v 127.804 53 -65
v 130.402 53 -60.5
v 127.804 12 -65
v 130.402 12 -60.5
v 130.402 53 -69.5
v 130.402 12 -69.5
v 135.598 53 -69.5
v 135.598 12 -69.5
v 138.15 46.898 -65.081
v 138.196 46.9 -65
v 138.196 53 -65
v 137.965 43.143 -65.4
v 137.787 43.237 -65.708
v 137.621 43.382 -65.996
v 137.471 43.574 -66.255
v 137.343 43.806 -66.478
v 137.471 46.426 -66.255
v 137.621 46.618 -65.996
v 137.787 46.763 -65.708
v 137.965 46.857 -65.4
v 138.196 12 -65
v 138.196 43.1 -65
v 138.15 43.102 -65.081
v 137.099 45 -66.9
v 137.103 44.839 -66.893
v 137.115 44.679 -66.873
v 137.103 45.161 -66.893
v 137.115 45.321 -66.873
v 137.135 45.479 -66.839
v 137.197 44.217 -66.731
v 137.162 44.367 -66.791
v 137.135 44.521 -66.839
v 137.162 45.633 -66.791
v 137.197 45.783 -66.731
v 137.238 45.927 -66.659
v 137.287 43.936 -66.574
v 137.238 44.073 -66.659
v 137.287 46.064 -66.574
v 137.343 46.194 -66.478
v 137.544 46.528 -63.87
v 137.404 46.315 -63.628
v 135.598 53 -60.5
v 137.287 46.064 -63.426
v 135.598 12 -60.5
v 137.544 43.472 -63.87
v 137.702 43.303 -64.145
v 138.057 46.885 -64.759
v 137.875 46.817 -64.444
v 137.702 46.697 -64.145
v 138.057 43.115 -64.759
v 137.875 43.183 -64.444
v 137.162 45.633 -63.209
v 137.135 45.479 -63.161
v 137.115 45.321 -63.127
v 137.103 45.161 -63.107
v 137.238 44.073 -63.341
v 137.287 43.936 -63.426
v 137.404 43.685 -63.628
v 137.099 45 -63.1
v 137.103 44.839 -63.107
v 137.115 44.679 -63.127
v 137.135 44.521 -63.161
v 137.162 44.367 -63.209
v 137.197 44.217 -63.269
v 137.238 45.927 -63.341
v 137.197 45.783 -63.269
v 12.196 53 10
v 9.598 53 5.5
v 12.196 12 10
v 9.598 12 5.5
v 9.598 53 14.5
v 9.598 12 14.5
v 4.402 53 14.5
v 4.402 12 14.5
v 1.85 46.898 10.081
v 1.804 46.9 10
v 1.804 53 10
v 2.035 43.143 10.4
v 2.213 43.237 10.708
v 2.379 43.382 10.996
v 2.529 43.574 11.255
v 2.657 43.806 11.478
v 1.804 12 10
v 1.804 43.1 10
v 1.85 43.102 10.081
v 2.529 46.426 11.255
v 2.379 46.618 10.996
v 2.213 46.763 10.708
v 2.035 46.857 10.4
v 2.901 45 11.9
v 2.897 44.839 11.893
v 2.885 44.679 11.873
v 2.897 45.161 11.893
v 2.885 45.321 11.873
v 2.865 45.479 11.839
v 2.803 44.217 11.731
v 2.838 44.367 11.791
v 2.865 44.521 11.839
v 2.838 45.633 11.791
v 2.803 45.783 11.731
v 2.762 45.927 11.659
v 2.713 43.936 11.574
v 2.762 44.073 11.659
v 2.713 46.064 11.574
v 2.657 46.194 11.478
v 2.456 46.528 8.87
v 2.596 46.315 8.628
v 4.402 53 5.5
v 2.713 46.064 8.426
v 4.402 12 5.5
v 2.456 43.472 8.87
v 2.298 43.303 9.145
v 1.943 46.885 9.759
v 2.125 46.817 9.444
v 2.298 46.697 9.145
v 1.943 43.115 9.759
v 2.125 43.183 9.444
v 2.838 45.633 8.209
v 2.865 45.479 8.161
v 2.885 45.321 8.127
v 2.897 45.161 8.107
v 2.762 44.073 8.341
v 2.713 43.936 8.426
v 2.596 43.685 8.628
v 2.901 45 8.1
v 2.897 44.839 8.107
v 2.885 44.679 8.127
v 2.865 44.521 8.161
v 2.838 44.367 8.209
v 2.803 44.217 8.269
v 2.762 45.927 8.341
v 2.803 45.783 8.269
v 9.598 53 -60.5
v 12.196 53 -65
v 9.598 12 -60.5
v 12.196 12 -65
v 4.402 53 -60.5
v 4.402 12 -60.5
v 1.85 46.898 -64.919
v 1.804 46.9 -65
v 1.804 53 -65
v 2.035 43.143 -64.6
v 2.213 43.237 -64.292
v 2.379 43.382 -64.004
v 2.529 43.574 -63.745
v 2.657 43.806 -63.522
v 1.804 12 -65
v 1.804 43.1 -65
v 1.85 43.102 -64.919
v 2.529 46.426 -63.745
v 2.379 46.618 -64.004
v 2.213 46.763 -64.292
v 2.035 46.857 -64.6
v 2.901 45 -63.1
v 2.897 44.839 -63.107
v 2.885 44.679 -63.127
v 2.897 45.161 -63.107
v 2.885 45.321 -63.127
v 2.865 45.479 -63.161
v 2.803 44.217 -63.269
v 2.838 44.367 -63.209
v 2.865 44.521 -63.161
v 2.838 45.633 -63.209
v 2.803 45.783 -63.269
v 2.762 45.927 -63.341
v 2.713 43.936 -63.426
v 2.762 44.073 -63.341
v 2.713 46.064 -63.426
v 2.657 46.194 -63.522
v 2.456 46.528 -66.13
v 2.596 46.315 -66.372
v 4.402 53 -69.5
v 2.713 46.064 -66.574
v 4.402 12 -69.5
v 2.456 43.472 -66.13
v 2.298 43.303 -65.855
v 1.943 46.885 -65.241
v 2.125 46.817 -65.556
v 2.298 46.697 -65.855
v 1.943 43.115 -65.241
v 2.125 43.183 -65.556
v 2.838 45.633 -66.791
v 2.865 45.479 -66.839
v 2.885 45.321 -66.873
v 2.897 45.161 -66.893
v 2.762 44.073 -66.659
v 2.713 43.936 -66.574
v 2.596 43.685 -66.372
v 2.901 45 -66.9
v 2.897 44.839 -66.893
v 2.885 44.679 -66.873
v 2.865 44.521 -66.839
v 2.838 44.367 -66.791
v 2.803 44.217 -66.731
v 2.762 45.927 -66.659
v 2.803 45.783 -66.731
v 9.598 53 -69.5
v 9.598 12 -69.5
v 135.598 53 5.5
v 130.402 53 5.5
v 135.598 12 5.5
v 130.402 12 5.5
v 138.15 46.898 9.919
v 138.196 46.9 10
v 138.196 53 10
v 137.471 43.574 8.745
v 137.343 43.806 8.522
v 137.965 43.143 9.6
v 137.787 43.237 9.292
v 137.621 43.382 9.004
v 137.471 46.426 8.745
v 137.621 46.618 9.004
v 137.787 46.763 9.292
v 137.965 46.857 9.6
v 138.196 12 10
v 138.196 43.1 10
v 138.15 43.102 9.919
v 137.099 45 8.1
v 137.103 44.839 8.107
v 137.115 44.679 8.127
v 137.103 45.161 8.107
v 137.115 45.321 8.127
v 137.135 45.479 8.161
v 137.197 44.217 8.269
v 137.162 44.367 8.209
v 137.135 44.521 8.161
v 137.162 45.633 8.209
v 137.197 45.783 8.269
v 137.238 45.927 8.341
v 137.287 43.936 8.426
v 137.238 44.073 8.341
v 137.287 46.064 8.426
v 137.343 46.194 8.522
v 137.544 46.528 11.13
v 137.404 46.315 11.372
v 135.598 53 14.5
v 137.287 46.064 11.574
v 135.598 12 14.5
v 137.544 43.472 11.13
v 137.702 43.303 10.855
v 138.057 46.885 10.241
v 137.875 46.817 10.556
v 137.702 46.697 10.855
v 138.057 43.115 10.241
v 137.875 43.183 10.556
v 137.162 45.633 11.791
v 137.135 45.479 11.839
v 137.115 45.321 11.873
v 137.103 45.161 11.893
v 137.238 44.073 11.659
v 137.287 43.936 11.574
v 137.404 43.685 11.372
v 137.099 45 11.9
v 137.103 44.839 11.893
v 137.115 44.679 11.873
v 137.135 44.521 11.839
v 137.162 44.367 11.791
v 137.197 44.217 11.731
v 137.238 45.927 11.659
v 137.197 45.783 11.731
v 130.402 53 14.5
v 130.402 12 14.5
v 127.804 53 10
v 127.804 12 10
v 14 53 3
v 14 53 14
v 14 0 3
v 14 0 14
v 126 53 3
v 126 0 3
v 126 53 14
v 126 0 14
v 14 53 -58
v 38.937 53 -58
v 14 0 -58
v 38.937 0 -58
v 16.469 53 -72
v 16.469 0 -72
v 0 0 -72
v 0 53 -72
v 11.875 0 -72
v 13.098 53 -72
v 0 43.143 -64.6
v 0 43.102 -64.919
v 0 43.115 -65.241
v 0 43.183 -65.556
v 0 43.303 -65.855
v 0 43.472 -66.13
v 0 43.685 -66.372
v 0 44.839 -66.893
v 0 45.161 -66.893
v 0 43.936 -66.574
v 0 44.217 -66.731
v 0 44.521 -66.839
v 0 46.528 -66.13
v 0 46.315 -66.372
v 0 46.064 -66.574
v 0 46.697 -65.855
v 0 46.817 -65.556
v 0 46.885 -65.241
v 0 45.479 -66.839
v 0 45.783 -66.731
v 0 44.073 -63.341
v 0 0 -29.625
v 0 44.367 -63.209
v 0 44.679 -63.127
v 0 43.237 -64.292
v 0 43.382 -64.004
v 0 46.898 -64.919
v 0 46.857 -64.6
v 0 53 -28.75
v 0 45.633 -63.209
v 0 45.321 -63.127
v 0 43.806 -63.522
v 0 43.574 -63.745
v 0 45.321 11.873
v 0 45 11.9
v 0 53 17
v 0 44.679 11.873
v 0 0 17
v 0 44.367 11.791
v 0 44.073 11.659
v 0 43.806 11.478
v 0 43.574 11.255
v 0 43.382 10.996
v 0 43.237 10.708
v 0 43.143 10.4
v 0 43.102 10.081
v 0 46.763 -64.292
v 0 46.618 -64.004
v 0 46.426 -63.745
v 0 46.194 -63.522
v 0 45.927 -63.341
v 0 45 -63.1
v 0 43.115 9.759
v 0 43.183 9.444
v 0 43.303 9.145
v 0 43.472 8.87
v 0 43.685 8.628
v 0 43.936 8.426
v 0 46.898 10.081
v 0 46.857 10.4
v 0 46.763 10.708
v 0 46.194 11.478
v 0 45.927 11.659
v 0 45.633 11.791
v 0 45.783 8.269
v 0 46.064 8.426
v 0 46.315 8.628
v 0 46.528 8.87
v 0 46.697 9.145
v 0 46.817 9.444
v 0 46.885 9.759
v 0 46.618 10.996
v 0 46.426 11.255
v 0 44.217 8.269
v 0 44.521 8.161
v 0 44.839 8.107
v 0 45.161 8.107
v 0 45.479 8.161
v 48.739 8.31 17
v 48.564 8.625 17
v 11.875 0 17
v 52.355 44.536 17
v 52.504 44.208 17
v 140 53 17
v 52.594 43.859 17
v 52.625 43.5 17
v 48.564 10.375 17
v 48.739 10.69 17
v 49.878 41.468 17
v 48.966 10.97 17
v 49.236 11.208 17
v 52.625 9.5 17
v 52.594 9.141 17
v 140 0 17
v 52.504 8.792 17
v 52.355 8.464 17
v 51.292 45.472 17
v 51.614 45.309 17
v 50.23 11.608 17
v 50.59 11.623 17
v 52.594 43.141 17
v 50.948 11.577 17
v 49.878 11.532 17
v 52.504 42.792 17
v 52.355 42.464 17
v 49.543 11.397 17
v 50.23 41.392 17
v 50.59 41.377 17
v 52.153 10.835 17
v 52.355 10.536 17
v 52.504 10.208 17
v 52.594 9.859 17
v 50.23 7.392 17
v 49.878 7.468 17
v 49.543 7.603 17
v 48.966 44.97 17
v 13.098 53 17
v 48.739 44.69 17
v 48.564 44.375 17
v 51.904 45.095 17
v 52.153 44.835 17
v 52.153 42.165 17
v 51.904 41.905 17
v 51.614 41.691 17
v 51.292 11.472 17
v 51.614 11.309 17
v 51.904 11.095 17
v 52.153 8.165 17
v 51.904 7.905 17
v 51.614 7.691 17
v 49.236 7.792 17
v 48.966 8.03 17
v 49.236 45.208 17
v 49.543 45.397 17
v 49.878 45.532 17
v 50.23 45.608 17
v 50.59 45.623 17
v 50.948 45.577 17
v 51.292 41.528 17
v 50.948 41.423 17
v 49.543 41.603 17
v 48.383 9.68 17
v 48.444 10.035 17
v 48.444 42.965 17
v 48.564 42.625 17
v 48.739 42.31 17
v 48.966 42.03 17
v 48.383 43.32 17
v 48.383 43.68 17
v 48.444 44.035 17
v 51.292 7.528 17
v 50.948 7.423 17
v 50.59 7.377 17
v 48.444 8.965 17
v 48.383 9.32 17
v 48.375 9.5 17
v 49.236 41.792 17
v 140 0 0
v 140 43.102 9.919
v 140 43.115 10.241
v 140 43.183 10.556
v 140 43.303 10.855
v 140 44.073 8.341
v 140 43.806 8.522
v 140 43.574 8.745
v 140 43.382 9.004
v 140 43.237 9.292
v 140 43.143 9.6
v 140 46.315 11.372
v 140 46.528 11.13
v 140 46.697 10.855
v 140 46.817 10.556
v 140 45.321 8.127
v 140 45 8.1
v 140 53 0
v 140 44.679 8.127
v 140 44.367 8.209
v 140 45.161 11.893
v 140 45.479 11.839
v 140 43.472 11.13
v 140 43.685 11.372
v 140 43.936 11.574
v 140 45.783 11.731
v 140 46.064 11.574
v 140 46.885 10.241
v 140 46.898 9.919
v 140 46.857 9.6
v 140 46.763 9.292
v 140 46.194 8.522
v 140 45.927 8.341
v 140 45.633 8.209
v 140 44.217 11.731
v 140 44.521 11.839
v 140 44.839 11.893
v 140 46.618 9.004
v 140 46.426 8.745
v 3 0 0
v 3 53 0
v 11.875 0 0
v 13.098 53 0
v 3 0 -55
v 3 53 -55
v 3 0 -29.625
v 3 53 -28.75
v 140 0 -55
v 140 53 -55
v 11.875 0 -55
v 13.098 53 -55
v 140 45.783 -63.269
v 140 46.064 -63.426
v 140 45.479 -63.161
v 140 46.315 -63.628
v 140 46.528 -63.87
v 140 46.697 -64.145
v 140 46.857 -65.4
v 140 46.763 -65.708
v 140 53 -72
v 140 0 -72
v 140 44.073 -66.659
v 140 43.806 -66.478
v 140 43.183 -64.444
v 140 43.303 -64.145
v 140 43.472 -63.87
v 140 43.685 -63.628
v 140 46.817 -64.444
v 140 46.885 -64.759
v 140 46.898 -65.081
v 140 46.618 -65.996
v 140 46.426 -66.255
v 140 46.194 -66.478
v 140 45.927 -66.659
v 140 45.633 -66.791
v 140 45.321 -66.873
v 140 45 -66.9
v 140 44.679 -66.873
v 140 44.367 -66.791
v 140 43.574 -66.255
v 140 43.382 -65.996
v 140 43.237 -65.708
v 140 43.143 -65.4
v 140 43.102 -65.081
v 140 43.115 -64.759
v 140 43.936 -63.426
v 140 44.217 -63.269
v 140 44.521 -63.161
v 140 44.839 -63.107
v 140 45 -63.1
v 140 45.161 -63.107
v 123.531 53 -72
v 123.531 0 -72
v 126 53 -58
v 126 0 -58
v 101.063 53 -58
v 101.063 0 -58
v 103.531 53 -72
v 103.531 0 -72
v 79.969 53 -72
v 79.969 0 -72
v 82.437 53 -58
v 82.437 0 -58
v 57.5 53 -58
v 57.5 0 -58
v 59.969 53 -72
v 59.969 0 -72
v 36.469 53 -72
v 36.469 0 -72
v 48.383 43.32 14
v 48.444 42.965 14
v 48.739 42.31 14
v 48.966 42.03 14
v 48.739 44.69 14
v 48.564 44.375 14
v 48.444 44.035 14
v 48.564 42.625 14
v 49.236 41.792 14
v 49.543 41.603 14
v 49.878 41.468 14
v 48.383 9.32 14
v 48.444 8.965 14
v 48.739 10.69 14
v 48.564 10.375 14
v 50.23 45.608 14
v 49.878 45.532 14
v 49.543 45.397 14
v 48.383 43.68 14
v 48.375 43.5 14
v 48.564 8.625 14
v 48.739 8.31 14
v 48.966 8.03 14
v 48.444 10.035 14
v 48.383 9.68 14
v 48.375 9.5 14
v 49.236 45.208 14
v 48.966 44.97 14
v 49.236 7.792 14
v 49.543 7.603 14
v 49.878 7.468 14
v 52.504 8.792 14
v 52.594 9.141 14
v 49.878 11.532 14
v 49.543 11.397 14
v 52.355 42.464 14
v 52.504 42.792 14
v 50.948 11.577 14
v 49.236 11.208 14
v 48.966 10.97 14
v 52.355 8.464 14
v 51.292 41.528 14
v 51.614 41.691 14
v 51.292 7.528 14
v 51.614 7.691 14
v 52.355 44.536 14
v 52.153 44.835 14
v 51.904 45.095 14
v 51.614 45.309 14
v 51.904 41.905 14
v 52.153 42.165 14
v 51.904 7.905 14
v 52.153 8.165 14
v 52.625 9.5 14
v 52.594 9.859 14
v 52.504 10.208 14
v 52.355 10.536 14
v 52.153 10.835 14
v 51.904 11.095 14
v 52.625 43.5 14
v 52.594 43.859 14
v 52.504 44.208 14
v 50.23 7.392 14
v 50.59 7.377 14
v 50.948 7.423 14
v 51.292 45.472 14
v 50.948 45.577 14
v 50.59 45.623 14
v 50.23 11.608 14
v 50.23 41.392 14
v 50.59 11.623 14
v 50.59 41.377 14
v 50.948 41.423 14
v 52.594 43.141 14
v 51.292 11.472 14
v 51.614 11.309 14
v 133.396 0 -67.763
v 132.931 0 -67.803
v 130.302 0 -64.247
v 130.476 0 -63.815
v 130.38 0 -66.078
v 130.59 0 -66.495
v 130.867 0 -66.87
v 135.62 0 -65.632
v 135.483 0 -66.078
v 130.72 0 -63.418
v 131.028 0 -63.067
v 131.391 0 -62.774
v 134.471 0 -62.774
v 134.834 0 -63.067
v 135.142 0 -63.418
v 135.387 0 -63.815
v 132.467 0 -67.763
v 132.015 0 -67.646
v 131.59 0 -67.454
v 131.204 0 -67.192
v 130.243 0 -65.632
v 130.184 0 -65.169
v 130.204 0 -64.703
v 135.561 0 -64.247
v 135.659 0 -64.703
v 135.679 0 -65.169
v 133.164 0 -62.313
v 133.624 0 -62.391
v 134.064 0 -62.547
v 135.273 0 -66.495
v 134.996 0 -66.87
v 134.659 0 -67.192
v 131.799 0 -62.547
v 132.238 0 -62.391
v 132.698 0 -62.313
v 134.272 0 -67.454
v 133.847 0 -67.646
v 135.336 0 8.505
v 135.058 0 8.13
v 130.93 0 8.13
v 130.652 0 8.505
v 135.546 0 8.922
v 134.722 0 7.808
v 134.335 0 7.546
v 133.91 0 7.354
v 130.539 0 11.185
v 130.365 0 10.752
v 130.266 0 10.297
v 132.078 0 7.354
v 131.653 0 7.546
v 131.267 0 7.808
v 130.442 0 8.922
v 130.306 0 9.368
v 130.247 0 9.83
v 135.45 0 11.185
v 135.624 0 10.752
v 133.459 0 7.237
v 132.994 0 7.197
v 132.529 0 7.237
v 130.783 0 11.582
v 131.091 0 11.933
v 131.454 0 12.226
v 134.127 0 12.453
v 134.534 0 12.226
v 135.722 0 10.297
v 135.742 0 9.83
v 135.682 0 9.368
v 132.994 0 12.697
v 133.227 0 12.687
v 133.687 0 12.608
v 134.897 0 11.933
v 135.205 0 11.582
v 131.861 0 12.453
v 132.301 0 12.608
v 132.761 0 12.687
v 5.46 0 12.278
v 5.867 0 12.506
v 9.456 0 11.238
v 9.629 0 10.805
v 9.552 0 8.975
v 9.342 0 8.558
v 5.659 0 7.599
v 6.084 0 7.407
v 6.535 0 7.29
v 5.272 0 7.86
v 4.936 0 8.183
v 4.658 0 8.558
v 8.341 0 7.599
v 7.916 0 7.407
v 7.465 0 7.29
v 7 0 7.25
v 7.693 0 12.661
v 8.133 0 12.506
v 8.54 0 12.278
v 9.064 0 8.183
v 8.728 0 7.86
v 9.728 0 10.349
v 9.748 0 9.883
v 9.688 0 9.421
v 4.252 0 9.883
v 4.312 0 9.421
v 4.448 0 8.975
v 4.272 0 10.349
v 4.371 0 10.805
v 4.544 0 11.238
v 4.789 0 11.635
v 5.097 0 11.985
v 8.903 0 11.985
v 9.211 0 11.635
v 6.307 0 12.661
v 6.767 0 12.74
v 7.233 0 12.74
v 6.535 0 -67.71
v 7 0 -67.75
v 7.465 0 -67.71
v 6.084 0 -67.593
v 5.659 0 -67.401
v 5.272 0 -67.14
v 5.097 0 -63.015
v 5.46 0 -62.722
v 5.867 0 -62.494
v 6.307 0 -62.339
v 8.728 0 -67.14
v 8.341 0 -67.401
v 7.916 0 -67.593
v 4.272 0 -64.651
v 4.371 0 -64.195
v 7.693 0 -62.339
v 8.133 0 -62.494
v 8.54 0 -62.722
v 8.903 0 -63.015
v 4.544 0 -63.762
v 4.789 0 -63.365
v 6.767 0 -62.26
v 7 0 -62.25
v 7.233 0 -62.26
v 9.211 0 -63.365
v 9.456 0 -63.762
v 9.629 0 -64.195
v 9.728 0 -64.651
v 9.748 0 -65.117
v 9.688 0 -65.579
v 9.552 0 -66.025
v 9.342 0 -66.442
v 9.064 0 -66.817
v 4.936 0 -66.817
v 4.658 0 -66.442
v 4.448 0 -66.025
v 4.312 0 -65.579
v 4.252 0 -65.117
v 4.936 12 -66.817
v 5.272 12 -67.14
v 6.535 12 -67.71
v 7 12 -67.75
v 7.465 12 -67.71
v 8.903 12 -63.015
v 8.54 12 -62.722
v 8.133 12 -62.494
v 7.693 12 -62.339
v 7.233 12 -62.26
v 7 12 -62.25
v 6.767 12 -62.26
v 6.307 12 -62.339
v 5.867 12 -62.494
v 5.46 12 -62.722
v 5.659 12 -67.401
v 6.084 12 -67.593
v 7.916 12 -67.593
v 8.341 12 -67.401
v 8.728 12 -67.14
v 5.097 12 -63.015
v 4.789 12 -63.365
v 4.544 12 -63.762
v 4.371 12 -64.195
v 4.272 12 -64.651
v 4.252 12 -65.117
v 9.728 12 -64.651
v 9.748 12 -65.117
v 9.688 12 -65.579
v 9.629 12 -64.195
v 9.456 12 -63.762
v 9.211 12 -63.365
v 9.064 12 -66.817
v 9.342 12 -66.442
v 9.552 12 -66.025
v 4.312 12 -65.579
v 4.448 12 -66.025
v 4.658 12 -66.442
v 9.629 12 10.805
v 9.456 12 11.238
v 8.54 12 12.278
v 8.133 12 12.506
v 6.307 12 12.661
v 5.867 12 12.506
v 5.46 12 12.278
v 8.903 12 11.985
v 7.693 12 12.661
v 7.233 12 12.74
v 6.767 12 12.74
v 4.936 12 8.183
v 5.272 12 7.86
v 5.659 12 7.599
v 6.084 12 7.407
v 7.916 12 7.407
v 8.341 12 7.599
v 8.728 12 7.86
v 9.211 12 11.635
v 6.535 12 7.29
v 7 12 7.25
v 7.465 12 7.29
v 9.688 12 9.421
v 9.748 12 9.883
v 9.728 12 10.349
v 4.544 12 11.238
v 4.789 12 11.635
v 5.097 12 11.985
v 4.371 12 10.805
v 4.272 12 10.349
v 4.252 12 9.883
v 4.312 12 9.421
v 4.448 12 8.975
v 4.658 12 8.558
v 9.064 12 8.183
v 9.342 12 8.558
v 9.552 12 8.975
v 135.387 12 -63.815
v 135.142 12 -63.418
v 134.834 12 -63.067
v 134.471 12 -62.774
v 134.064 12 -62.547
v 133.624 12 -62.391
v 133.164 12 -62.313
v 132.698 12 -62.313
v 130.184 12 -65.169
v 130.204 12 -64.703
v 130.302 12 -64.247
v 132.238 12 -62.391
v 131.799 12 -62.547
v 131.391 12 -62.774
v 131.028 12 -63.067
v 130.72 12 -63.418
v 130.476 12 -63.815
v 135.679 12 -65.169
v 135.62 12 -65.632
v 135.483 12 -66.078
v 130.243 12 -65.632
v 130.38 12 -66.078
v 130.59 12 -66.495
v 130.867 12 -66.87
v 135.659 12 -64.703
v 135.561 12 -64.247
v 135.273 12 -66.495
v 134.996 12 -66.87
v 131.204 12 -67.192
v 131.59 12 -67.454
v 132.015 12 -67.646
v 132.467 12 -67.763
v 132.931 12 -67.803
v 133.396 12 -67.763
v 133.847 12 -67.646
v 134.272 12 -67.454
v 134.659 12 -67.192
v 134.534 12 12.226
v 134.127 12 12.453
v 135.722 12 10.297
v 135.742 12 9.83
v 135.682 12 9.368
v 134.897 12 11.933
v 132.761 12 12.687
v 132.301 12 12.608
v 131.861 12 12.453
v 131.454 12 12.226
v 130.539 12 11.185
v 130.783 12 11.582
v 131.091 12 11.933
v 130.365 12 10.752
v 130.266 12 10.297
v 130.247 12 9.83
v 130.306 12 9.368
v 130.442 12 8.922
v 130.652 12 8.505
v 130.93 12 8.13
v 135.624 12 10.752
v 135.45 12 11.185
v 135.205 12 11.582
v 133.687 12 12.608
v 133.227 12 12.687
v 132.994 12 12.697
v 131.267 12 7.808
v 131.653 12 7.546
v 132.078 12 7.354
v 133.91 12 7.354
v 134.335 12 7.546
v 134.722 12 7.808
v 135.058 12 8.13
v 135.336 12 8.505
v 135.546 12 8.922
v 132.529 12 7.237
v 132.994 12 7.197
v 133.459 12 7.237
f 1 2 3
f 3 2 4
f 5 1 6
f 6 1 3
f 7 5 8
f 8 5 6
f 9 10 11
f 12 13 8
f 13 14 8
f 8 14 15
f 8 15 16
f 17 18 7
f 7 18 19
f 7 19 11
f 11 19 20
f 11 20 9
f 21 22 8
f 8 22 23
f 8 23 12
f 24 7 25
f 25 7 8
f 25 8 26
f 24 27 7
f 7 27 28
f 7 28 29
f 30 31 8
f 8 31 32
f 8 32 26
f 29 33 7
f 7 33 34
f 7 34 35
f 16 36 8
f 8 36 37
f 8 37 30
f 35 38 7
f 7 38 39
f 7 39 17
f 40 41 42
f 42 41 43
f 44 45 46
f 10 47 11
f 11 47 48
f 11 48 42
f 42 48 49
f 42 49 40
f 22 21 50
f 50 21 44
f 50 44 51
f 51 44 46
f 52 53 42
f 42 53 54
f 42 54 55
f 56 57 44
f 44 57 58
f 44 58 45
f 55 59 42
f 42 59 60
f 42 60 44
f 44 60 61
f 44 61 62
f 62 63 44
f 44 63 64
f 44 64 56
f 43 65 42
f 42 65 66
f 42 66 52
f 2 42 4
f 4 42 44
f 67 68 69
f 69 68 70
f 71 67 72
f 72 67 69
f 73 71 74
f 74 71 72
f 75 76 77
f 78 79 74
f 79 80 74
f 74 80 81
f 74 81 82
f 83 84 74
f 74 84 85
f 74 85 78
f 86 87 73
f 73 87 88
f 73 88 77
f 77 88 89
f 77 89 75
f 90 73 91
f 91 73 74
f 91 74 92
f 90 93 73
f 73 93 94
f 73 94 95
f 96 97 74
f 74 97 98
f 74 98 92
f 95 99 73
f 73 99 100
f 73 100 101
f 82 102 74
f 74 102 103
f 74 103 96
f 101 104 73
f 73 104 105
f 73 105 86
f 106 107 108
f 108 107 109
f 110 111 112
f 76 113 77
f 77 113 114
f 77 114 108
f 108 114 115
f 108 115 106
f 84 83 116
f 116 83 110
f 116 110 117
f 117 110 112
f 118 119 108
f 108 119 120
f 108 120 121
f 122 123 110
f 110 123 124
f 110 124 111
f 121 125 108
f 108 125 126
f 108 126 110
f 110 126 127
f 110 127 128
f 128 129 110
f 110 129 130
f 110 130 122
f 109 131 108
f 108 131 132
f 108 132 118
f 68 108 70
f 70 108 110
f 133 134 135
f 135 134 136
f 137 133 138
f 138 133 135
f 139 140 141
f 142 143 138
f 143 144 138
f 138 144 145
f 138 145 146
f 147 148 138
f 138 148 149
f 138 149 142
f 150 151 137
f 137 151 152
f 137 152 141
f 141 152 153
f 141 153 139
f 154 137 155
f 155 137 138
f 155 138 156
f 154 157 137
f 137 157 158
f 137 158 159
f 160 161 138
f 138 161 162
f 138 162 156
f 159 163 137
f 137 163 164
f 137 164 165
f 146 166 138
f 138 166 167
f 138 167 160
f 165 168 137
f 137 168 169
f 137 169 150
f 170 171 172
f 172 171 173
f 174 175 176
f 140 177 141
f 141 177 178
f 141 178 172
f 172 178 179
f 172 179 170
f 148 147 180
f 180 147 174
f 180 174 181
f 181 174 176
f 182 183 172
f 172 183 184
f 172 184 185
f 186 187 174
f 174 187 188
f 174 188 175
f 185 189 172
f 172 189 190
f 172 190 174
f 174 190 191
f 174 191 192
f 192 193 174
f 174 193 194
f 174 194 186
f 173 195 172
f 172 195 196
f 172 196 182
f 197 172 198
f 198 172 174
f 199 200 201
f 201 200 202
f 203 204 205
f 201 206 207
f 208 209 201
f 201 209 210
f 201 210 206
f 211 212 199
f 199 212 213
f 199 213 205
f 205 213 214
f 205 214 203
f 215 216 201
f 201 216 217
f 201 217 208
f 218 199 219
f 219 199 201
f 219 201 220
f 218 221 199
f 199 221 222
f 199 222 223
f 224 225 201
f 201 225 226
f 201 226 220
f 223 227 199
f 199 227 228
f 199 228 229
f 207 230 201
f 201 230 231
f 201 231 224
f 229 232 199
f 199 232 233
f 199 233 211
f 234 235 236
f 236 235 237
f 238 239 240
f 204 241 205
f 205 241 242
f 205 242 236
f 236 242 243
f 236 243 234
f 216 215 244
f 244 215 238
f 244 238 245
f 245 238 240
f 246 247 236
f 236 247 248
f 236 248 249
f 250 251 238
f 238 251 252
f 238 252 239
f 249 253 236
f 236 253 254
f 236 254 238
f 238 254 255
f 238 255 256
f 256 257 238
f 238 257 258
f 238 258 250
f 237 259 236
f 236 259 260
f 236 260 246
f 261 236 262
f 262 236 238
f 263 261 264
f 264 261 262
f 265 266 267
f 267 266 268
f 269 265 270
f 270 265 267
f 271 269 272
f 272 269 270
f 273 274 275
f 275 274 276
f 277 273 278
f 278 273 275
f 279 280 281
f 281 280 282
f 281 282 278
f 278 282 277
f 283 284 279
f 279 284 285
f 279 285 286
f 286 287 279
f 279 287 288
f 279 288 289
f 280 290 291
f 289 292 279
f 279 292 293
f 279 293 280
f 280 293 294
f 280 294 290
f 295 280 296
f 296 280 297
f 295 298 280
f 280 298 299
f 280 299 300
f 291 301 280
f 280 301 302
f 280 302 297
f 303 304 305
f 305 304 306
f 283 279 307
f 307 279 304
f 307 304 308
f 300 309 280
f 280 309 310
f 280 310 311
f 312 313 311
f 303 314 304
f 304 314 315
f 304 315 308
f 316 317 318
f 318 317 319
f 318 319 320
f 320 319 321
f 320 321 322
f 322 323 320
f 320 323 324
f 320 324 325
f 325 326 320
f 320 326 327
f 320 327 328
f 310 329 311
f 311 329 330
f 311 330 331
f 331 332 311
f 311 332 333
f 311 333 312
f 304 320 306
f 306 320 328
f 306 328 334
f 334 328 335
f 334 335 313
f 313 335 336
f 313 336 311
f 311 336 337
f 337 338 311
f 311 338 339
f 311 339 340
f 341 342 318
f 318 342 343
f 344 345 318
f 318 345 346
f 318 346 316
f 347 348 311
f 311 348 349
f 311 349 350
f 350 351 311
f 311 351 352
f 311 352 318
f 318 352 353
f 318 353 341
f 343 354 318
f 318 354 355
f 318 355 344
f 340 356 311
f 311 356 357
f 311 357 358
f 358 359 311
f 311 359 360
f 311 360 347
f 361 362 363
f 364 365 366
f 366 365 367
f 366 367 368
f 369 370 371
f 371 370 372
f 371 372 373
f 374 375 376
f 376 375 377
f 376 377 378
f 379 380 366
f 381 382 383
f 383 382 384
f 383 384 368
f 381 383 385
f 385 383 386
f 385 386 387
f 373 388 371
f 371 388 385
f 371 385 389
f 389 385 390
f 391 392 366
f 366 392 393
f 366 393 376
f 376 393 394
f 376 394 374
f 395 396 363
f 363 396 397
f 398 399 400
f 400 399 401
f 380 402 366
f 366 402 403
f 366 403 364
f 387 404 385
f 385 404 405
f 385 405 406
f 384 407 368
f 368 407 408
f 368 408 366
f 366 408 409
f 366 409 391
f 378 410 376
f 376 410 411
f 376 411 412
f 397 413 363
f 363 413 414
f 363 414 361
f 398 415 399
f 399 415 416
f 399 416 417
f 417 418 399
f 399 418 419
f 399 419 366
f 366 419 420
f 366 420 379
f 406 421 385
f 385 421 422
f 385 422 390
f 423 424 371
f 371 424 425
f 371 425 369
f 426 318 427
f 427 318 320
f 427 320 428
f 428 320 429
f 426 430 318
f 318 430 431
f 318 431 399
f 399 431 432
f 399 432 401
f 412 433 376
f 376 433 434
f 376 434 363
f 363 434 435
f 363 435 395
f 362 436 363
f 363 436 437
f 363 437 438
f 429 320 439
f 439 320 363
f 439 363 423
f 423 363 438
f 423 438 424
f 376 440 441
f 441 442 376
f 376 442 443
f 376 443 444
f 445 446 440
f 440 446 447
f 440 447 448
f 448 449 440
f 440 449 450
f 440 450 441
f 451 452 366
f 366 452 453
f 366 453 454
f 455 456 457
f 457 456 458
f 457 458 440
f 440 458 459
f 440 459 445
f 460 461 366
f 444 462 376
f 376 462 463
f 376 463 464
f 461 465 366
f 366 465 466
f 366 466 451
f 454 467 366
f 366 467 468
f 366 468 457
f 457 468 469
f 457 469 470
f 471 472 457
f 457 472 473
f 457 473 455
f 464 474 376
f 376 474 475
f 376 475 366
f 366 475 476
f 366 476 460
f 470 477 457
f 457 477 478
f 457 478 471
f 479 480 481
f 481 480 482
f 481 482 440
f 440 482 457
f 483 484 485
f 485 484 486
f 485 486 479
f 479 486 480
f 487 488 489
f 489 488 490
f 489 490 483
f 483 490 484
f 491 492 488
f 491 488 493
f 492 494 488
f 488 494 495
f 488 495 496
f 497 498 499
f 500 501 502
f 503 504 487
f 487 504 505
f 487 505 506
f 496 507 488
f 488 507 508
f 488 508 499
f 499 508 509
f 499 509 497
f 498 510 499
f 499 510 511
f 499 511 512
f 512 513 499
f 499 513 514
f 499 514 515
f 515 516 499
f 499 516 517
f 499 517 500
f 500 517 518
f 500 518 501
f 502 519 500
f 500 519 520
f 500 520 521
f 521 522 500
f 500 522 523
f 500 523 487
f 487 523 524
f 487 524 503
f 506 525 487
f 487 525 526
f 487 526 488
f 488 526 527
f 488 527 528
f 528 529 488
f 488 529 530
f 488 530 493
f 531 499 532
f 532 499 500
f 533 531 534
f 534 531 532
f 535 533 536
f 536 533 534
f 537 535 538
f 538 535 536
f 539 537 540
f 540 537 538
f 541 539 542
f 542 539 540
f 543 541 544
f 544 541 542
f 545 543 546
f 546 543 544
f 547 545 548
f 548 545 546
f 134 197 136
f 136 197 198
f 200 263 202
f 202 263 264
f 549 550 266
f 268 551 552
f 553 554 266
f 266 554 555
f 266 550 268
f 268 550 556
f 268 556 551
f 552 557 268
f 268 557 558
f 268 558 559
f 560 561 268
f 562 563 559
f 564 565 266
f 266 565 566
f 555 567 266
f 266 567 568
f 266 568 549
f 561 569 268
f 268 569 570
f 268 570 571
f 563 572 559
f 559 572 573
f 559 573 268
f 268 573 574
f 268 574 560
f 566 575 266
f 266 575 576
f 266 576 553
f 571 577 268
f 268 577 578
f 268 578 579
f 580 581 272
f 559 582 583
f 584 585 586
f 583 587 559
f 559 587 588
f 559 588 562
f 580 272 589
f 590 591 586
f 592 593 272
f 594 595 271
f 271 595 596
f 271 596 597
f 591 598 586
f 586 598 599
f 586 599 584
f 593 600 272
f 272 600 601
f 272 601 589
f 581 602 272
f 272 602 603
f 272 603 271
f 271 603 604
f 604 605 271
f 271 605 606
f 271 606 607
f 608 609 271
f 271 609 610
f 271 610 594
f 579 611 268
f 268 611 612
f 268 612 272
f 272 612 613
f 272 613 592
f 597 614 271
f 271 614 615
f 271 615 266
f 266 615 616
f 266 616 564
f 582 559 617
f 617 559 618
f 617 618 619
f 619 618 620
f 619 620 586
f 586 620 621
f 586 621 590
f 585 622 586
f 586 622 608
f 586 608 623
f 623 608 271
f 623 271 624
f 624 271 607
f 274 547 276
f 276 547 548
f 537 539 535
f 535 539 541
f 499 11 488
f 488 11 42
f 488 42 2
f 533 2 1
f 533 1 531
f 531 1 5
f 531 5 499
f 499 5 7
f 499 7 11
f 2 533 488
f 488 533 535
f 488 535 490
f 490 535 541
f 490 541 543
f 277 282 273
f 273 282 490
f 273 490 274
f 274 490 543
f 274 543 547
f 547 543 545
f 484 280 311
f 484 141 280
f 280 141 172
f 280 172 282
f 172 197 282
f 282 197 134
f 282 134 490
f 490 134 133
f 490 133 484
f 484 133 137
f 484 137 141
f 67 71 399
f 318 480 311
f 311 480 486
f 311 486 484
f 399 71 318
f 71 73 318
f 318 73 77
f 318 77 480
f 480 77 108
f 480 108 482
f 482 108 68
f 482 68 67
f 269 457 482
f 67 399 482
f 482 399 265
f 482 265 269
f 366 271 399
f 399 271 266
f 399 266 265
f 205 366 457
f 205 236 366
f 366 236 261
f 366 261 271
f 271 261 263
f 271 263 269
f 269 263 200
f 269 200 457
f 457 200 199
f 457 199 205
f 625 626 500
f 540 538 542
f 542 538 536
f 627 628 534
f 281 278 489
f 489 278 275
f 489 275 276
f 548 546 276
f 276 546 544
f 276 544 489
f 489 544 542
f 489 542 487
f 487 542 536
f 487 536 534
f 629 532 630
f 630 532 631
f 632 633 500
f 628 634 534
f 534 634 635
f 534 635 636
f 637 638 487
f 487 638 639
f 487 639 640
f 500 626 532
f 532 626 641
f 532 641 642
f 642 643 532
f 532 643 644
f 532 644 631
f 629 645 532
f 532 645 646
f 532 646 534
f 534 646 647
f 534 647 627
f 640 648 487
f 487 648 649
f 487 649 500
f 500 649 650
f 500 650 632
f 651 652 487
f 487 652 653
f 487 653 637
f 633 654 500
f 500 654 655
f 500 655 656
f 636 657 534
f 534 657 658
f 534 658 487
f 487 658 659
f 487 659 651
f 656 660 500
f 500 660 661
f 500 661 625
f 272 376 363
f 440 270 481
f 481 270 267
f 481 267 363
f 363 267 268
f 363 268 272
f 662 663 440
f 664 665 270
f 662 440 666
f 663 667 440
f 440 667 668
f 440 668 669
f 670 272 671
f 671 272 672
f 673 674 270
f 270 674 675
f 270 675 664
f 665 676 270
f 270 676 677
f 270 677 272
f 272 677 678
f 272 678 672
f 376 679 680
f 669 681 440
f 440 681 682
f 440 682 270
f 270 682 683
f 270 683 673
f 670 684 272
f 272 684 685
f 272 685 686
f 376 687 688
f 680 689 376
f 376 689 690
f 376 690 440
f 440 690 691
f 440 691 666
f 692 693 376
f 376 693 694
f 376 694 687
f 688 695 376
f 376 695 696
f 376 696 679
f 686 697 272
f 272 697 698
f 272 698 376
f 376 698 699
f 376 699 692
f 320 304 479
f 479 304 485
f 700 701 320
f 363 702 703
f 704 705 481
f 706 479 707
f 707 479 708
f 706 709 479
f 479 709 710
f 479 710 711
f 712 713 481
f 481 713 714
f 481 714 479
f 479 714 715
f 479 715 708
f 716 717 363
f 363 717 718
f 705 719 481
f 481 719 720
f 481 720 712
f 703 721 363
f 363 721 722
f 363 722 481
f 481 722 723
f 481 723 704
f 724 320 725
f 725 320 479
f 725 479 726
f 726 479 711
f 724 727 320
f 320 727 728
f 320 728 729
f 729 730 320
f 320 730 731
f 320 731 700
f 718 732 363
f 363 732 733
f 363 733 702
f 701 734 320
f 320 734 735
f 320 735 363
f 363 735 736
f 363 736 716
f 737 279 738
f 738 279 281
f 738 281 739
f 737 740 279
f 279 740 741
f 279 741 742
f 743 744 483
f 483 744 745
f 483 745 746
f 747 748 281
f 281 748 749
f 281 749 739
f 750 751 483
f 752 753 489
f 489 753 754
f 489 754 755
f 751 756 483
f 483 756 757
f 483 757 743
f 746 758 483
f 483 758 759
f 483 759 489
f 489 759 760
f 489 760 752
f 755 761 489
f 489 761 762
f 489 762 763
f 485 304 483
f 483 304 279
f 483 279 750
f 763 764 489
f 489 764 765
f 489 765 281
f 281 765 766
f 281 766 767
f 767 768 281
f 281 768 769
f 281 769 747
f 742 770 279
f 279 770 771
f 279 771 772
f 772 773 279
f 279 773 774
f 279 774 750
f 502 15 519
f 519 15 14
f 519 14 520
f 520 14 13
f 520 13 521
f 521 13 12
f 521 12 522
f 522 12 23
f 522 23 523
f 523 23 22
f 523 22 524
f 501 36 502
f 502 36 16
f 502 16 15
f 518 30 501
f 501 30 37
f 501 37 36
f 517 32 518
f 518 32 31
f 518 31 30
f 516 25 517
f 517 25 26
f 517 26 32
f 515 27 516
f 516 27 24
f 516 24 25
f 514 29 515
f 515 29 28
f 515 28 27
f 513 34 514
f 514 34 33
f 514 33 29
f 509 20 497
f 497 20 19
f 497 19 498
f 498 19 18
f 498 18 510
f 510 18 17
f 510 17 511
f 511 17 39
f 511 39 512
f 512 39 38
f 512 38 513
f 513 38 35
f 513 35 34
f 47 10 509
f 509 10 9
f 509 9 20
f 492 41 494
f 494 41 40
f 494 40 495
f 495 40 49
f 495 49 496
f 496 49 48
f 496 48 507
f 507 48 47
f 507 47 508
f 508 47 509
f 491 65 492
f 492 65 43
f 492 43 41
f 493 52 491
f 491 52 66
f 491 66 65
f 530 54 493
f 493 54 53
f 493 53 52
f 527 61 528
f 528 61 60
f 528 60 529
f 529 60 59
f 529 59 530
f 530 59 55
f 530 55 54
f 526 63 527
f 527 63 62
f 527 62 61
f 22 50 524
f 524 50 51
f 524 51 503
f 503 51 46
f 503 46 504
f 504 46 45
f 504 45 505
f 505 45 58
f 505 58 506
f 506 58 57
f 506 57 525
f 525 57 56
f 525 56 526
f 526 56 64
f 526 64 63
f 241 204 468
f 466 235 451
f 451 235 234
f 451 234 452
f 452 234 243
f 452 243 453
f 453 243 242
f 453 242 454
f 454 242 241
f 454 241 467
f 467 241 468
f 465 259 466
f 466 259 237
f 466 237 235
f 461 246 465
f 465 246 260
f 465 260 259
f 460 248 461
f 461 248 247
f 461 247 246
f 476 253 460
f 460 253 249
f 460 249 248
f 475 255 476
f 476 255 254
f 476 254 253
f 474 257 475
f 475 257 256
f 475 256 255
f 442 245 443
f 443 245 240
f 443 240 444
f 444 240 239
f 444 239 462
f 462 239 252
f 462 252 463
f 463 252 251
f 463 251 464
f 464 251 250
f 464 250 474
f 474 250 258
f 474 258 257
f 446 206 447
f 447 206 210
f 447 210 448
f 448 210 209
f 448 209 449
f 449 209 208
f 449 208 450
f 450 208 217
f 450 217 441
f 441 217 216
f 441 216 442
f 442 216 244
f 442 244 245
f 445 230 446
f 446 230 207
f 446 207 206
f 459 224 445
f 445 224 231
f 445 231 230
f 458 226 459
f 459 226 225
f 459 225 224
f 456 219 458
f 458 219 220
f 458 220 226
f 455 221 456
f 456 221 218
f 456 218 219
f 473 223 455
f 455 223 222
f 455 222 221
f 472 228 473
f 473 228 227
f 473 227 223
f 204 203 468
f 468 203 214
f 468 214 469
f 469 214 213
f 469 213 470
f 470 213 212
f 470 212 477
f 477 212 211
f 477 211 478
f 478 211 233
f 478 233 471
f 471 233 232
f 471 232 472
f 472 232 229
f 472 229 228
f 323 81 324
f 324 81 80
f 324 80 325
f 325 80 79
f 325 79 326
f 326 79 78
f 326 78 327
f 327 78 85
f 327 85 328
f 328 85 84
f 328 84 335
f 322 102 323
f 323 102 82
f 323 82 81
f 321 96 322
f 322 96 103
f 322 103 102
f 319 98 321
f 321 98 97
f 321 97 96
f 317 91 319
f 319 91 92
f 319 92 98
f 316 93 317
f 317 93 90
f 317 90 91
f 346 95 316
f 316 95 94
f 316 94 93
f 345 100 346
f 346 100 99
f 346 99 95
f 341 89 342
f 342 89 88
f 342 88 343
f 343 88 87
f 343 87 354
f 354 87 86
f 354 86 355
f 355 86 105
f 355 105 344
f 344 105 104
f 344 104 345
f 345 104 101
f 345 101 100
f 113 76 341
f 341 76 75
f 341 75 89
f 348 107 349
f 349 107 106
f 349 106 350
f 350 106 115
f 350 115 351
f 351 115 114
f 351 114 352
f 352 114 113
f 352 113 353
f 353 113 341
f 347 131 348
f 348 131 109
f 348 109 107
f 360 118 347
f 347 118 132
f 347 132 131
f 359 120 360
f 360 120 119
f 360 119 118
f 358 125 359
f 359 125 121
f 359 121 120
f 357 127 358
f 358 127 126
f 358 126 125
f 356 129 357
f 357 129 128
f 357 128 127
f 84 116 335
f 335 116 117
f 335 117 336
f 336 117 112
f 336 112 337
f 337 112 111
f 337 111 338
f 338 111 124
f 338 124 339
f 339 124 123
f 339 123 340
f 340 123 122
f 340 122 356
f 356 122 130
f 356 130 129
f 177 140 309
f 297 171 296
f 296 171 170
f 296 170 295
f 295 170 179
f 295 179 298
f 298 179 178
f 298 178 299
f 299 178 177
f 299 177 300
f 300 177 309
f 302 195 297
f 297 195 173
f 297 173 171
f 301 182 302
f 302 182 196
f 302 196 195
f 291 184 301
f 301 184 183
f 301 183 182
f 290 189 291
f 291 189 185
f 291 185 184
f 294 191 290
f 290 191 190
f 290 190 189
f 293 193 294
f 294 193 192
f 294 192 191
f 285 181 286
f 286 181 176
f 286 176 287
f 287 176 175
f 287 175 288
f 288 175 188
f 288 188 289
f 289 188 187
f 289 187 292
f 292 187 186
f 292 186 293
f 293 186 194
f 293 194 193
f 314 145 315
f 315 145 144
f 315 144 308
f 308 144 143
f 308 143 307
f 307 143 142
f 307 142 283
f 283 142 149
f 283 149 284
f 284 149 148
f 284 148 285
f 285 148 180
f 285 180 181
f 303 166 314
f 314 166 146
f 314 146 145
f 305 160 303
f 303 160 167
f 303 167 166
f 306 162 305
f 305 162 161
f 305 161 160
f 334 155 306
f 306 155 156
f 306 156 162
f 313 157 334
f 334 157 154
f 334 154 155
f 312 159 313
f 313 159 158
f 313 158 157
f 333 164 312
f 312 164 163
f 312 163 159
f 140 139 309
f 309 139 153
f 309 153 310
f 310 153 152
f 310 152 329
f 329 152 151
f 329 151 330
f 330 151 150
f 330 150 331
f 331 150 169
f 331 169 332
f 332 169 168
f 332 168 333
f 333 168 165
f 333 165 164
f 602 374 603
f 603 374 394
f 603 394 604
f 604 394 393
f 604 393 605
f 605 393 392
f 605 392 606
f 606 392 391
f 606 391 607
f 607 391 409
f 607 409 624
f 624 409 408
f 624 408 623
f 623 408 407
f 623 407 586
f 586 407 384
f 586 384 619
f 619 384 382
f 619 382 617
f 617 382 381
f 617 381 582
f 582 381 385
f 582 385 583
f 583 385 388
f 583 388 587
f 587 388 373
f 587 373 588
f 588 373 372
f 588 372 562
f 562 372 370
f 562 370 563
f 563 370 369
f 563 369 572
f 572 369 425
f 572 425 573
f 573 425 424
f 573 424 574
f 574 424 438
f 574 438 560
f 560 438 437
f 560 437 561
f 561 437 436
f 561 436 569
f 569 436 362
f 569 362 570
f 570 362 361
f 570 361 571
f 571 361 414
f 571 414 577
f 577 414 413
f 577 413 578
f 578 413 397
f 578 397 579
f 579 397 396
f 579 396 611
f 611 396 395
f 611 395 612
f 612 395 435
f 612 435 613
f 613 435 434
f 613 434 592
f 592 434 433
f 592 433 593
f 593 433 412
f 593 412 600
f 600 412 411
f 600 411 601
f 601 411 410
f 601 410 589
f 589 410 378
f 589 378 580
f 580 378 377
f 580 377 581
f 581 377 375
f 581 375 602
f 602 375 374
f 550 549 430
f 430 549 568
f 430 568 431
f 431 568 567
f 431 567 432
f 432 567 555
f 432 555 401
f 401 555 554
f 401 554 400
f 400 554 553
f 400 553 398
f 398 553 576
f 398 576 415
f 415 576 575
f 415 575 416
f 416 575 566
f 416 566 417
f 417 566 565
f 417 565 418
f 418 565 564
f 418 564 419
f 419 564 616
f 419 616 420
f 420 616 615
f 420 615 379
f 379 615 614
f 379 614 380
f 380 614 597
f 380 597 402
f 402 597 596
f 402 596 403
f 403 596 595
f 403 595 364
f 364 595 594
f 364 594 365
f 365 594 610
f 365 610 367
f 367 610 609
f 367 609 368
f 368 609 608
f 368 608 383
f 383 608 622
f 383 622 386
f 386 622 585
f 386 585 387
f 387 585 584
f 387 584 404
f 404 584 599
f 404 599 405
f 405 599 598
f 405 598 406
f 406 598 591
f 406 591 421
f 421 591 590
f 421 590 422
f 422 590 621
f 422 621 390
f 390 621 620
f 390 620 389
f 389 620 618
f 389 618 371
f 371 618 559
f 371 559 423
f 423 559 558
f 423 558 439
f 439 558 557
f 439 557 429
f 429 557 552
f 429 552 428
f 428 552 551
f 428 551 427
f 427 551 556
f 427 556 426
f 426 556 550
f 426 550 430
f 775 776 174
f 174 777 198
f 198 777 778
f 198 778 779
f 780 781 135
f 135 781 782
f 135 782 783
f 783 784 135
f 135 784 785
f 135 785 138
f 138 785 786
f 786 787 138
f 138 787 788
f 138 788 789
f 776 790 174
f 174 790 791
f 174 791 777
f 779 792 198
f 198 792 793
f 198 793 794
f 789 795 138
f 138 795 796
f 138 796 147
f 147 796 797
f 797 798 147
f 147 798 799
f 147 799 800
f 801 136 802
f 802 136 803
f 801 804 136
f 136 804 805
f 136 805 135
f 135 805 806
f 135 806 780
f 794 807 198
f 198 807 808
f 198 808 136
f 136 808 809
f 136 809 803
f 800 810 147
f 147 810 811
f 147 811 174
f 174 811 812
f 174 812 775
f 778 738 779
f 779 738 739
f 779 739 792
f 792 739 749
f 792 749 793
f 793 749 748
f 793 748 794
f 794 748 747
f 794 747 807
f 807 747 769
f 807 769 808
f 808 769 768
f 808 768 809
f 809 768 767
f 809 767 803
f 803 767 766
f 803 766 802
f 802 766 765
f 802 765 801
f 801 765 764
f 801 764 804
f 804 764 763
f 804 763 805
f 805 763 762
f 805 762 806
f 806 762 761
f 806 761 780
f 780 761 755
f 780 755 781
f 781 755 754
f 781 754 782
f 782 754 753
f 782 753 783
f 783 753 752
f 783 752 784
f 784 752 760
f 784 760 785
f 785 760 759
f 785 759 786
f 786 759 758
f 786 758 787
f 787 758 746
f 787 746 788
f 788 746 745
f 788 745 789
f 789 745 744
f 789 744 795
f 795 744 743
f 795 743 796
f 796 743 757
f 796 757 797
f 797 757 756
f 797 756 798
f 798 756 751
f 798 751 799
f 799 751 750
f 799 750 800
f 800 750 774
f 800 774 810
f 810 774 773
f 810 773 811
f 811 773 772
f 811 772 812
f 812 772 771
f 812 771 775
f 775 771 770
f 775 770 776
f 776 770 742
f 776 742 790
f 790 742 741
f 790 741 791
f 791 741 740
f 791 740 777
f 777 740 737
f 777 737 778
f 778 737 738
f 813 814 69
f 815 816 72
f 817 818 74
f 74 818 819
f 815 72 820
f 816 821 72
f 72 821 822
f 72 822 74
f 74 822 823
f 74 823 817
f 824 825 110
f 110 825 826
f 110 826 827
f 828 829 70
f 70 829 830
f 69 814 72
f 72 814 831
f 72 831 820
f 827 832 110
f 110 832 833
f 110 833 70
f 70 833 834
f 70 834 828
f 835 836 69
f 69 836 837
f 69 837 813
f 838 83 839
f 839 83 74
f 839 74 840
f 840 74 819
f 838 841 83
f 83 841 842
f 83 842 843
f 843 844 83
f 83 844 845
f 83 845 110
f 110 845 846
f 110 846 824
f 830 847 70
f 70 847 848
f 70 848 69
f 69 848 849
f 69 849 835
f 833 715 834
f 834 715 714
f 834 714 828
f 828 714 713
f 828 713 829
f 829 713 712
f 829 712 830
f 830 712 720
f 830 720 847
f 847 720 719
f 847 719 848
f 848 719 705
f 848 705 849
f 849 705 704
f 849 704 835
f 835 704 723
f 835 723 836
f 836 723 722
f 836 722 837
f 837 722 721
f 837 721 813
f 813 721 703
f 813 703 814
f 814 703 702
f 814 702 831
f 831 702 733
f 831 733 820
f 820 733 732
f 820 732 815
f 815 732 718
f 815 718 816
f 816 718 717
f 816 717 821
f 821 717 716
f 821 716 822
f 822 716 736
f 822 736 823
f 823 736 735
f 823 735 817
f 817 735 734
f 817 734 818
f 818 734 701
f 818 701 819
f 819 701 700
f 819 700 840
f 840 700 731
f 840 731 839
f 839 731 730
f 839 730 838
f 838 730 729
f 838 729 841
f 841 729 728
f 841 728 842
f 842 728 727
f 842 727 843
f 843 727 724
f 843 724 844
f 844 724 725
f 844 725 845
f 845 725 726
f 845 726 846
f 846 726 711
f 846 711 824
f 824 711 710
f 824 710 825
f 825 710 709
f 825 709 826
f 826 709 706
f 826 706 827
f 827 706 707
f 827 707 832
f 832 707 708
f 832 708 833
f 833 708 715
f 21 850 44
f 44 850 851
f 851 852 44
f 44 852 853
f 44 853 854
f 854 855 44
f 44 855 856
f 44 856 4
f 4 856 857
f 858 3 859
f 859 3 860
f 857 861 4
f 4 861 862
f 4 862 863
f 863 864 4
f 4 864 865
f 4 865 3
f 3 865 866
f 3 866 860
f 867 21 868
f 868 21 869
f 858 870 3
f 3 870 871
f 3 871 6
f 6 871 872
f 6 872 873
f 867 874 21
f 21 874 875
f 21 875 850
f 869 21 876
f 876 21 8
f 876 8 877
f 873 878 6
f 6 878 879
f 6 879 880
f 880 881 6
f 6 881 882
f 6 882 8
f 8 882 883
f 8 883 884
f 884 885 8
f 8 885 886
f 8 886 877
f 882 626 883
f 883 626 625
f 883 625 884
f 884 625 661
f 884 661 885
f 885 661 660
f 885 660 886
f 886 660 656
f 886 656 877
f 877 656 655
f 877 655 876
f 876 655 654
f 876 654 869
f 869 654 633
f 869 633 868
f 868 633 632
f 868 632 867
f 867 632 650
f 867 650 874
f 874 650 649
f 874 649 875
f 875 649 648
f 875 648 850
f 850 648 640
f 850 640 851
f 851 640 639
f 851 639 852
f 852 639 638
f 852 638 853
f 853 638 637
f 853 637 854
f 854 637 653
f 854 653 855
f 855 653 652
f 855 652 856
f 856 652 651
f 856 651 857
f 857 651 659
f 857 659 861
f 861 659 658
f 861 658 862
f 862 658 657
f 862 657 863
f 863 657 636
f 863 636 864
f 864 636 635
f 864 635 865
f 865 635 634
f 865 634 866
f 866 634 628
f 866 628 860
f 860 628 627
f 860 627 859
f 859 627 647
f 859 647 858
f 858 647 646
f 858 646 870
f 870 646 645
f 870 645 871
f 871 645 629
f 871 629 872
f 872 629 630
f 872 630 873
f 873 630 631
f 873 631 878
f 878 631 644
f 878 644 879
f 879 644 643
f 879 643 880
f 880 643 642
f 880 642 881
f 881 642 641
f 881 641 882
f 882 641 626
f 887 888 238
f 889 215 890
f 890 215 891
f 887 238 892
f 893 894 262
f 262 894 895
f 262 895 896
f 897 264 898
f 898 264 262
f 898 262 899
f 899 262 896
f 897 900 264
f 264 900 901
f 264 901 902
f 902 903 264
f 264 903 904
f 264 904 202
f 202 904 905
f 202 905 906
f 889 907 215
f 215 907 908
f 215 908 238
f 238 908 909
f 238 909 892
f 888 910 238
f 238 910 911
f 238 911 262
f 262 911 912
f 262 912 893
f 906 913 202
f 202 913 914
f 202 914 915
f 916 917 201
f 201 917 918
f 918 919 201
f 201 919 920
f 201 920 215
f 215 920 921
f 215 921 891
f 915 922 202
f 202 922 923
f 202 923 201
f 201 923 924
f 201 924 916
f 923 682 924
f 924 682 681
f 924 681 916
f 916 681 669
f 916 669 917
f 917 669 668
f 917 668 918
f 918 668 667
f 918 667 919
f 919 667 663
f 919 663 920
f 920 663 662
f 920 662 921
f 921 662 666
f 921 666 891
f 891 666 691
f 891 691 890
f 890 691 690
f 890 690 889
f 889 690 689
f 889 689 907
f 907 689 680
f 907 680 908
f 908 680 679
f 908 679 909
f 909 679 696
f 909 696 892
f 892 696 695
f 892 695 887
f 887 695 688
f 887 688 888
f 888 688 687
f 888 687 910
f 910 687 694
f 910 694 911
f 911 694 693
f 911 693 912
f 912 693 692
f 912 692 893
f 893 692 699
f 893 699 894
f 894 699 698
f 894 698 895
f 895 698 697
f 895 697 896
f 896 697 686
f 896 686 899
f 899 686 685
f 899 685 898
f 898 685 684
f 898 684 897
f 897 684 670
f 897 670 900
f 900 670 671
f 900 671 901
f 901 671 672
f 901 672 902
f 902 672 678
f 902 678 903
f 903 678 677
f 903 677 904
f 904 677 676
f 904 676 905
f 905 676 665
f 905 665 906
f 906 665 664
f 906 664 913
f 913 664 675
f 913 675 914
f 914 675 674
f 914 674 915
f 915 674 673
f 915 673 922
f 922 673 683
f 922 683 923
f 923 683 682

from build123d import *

# Parameters (mm, degrees)
SKETCH1_W           = 112
SKETCH1_H           = 11
BOSS_EXTRUDE2_DEPTH = 53
SKETCH2_R           = 1.9
CUT_EXTRUDE1_DEPTH  = 9.5
SKETCH3_R           = 1.9
CUT_EXTRUDE2_DEPTH  = 9.5
CUT_EXTRUDE3_REACH  = 91
SKETCH4_R           = 2.125
SKETCH5_R           = 2.75
BOSS_EXTRUDE6_DEPTH = 12


with BuildPart() as part:
    # Sketch1 → Boss-Extrude2 (new body)
    with BuildSketch(Plane(origin=(0, 0, 0), x_dir=(1, 0, 0), z_dir=(0, 1, 0))):
        Polygon((140, -17), (140, 0), (3, 0), (3, 55), (140, 55), (140, 72), (123.53142227, 72), (126, 58), (101.06284454, 58), (103.53142227, 72), (79.96857773, 72), (82.43715546, 58), (57.5, 58), (59.96857773, 72), (36.46857773, 72), (38.93715546, 58), (14, 58), (16.46857773, 72), (0, 72), (0, -17), align=None)
        with Locations((70, -8.5)):
            Rectangle(SKETCH1_W, SKETCH1_H, mode=Mode.SUBTRACT)
        Polygon((4.401923789, -5.5), (9.598076211, -5.5), (12.196152423, -10), (9.598076211, -14.5), (4.401923789, -14.5), (1.803847577, -10), align=None, mode=Mode.SUBTRACT)
        Polygon((12.196152423, 65), (9.598076211, 60.5), (4.401923789, 60.5), (1.803847577, 65), (4.401923789, 69.5), (9.598076211, 69.5), align=None, mode=Mode.SUBTRACT)
        Polygon((127.803847577, -10), (130.401923789, -5.5), (135.598076211, -5.5), (138.196152423, -10), (135.598076211, -14.5), (130.401923789, -14.5), align=None, mode=Mode.SUBTRACT)
        Polygon((135.598076211, 60.5), (130.401923789, 60.5), (127.803847577, 65), (130.401923789, 69.5), (135.598076211, 69.5), (138.196152423, 65), align=None, mode=Mode.SUBTRACT)
    extrude(amount=BOSS_EXTRUDE2_DEPTH)

    # Sketch2 → Cut-Extrude1 (cut)
    with BuildSketch(Plane(origin=(140, 0, 0), x_dir=(0, 0, -1), z_dir=(1, 0, 0))):
        with Locations((-10, 45)):
            Circle(SKETCH2_R)
        with Locations((65, 45)):
            Circle(SKETCH2_R)
    extrude(amount=-CUT_EXTRUDE1_DEPTH, mode=Mode.SUBTRACT)

    # Sketch3 → Cut-Extrude2 (cut)
    with BuildSketch(Plane.ZY):
        with Locations((-65, 45)):
            Circle(SKETCH3_R)
        with Locations((10, 45)):
            Circle(SKETCH3_R)
    extrude(amount=-CUT_EXTRUDE2_DEPTH, mode=Mode.SUBTRACT)

    # Sketch4 → Cut-Extrude3 (cut, up to next)
    with BuildSketch(Plane.XY.offset(17), mode=Mode.PRIVATE) as cut_extrude3_sk1:
        with Locations((50.5, 43.5)):
            Circle(SKETCH4_R)
    cut_extrude3_tool1 = extrude(cut_extrude3_sk1.sketch, amount=-CUT_EXTRUDE3_REACH, mode=Mode.PRIVATE) & part.part
    add(cut_extrude3_tool1.solids().sort_by_distance((50.5, 43.5, 17))[0], mode=Mode.SUBTRACT)
    # Sketch4 → Cut-Extrude3 (cut, up to next)
    with BuildSketch(Plane.XY.offset(17), mode=Mode.PRIVATE) as cut_extrude3_sk2:
        with Locations((50.5, 9.5)):
            Circle(SKETCH4_R)
    cut_extrude3_tool2 = extrude(cut_extrude3_sk2.sketch, amount=-CUT_EXTRUDE3_REACH, mode=Mode.PRIVATE) & part.part
    add(cut_extrude3_tool2.solids().sort_by_distance((50.5, 9.5, 17))[0], mode=Mode.SUBTRACT)

    # Sketch5 → Boss-Extrude6 (add)
    with BuildSketch(Plane.XZ):
        Polygon((3.904199133, -59.637915608), (10.095800867, -59.637915608), (13.191601734, -65), (10.095800867, -70.362084392), (3.904199133, -70.362084392), (0.808398266, -65), align=None)
        with Locations((7, -65)):
            Circle(SKETCH5_R, mode=Mode.SUBTRACT)
        Polygon((13.191601734, 10), (10.095800867, 15.362084392), (3.904199133, 15.362084392), (0.808398266, 10), (3.904199133, 4.637915608), (10.095800867, 4.637915608), align=None)
        with Locations((7, 10)):
            Circle(SKETCH5_R, mode=Mode.SUBTRACT)
        Polygon((139.122867425, -65.057948728), (136.03156068, -59.693272163), (129.83996112, -59.688084053), (126.739668304, -65.047572507), (129.830975049, -70.412249071), (136.022574609, -70.417437182), align=None)
        with Locations((132.931267865, -65.052760617)):
            Circle(SKETCH5_R, mode=Mode.SUBTRACT)
        Polygon((129.893819578, 4.587724599), (126.802512833, 9.952401164), (129.902805649, 15.311889618), (136.094405209, 15.306701507), (139.185711954, 9.942024942), (136.085419138, 4.582536488), align=None)
        with Locations((132.994112394, 9.947213053)):
            Circle(SKETCH5_R, mode=Mode.SUBTRACT)
    extrude(amount=-BOSS_EXTRUDE6_DEPTH)


solid = part.part
